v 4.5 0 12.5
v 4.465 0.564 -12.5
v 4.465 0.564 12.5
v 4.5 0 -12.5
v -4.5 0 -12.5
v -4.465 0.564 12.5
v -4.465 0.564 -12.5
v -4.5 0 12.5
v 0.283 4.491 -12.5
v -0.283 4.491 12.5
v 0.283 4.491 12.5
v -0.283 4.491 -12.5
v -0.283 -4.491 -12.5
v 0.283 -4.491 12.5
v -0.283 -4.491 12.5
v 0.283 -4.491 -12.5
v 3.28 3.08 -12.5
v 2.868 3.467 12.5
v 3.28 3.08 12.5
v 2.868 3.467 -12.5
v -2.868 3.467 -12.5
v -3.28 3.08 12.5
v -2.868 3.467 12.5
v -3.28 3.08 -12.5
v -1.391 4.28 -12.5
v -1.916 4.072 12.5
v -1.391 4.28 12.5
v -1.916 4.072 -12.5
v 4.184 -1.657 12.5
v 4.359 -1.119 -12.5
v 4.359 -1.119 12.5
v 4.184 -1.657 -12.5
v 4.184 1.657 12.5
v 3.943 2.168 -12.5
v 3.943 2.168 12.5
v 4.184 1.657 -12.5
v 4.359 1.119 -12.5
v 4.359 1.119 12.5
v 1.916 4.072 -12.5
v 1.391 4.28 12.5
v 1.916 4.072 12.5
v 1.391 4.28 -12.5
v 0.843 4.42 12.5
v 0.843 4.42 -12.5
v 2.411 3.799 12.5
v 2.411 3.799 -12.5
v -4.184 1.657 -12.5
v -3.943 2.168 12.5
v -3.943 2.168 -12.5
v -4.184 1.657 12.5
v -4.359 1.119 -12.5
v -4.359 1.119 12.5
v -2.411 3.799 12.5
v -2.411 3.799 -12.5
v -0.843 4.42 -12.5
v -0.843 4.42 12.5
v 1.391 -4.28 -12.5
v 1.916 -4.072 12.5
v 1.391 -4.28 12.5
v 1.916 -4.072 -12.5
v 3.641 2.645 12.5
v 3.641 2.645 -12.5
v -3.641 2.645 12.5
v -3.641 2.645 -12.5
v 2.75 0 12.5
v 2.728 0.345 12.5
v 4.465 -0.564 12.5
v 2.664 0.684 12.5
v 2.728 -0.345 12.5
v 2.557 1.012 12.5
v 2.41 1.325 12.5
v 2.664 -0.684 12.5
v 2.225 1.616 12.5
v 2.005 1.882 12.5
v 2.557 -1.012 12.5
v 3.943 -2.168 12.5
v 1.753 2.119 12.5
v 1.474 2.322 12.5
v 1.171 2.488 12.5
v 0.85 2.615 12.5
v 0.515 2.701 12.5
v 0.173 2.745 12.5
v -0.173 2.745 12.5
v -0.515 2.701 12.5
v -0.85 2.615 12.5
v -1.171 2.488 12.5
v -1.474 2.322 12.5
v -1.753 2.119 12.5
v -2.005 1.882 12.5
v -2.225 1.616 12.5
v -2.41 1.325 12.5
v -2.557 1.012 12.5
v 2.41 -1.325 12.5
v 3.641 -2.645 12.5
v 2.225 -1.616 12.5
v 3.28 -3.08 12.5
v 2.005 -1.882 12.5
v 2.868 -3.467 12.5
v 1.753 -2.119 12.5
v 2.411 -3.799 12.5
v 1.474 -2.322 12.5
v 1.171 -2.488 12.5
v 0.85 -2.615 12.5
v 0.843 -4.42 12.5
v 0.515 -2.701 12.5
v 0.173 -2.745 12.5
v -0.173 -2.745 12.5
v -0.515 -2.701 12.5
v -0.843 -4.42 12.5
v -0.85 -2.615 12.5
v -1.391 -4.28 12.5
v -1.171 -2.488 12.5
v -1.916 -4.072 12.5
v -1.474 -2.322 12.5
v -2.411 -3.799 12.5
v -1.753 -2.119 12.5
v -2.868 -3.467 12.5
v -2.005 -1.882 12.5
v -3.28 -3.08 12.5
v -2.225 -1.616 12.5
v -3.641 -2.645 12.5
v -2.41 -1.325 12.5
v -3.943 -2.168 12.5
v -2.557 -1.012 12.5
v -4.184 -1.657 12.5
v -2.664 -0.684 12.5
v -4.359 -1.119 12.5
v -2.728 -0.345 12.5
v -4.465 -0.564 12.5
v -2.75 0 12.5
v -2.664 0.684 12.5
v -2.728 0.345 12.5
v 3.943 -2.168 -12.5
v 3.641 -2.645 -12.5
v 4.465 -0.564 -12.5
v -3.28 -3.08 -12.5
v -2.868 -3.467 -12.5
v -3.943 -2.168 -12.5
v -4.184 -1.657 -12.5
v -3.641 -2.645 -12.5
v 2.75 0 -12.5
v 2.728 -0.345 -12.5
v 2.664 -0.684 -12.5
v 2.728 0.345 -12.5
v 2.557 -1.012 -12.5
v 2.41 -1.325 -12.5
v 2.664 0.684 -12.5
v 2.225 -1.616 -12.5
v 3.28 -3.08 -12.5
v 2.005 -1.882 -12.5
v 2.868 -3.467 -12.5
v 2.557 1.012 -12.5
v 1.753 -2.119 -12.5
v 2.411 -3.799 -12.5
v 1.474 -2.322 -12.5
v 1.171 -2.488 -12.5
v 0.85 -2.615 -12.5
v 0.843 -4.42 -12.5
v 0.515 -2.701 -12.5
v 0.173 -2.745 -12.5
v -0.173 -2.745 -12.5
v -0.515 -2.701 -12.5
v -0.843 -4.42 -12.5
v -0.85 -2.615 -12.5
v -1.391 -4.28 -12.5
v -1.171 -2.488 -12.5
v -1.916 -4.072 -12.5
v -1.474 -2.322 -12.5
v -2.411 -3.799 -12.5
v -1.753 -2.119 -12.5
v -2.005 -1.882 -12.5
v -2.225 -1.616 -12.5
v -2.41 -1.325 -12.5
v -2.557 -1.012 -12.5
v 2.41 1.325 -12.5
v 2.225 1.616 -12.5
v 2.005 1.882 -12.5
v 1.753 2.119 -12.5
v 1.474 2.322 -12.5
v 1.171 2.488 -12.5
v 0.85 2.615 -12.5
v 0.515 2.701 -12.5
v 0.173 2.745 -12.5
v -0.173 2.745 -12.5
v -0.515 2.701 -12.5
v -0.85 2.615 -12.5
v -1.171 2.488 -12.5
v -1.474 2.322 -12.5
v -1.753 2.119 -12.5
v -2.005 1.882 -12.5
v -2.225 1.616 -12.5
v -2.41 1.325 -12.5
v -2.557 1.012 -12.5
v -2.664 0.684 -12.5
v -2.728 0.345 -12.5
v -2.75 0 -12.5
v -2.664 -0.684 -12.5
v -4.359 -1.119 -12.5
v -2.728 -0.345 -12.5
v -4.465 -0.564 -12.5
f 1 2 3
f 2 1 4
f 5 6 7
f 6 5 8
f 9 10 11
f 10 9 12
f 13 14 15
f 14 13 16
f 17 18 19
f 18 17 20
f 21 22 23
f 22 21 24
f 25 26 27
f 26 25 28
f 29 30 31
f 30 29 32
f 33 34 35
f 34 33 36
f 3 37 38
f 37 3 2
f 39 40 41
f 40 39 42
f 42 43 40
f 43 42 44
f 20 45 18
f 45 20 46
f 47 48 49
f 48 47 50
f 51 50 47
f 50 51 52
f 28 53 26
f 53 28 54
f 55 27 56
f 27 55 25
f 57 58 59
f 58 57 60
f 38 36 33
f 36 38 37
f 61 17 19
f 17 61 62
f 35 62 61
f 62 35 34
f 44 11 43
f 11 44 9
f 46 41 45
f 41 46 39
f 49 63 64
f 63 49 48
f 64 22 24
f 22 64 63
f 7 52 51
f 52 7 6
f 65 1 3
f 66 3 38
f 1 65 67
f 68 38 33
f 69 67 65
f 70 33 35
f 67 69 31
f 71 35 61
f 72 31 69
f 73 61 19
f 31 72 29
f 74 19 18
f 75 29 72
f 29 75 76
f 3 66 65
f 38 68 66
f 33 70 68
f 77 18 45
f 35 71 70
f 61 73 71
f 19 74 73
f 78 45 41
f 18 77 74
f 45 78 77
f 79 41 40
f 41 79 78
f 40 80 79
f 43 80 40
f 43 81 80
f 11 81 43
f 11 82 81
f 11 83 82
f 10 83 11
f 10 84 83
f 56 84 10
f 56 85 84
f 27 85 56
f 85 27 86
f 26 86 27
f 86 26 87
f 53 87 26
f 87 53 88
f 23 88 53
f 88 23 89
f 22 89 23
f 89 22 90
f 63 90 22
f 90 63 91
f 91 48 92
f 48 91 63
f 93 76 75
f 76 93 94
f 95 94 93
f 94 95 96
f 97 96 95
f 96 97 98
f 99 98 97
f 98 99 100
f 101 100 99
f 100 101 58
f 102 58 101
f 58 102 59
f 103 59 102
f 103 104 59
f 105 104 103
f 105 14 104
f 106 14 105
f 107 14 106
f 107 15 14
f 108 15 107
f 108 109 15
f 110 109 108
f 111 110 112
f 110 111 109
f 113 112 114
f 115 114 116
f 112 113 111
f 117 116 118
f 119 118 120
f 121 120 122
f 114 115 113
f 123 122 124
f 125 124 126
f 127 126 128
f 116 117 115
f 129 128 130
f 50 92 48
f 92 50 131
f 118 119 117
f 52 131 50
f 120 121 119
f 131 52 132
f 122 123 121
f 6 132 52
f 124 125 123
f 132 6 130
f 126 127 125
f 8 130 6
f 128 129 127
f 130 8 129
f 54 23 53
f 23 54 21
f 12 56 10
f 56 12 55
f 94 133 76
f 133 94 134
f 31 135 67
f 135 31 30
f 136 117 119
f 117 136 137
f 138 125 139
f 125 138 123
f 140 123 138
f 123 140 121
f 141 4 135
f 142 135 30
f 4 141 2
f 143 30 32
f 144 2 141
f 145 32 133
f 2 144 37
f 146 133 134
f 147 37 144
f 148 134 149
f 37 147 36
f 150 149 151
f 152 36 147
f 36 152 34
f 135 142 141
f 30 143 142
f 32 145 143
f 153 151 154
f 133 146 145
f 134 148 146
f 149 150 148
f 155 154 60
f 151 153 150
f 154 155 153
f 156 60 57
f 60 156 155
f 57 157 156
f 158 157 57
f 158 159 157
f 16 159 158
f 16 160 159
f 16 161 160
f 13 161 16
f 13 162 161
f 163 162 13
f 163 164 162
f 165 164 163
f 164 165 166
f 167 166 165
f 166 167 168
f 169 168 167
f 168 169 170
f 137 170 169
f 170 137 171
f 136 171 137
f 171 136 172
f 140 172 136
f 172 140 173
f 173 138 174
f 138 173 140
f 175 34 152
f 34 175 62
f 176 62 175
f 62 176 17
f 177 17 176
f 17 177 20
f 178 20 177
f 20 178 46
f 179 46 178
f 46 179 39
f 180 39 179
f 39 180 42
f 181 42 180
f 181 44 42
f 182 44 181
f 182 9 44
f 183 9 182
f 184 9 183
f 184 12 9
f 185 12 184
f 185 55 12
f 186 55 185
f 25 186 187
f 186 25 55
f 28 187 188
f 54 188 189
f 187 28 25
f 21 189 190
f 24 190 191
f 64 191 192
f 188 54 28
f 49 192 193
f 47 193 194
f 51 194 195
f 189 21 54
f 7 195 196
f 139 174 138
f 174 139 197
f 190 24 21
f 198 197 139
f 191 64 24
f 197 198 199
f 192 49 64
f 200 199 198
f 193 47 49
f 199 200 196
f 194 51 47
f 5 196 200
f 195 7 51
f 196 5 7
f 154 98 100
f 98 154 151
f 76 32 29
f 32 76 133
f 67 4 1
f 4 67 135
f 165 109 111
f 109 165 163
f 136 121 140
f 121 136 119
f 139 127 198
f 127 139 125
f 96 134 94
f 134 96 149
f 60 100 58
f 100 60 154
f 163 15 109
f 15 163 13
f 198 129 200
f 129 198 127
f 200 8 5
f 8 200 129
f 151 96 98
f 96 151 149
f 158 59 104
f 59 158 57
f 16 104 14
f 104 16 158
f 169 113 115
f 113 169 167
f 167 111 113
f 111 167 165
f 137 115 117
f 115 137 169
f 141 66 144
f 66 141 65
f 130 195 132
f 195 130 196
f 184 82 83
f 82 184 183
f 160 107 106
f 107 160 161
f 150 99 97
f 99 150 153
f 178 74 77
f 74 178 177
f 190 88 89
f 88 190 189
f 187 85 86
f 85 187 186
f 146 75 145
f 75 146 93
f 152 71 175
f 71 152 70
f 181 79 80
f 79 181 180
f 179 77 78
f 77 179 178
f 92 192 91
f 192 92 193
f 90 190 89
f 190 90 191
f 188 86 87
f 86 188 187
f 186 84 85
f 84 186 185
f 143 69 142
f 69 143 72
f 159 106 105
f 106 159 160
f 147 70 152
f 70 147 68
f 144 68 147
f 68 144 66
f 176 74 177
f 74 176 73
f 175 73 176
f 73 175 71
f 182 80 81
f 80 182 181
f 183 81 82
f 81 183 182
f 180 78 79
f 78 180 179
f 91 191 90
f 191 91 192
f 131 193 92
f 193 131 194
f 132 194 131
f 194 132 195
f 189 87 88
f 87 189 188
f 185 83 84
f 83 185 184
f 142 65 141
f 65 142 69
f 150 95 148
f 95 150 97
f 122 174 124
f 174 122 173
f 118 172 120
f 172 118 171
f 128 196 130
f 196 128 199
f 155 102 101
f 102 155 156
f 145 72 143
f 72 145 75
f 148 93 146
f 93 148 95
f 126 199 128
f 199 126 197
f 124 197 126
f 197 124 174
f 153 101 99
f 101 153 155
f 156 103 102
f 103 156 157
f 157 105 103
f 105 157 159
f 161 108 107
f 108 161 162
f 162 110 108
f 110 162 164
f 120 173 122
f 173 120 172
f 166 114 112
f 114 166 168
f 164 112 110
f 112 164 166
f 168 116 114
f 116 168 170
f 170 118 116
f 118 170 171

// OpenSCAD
$fn = 50;


difference() {
	union() {
		translate(v = [0, 0, -12.5000000000]) {
			cylinder(h = 25, r = 4.5000000000);
		}
	}
	union() {
		translate(v = [0, 0, -100.0000000000]) {
			cylinder(h = 200, r = 2.7500000000);
		}
	}
}
